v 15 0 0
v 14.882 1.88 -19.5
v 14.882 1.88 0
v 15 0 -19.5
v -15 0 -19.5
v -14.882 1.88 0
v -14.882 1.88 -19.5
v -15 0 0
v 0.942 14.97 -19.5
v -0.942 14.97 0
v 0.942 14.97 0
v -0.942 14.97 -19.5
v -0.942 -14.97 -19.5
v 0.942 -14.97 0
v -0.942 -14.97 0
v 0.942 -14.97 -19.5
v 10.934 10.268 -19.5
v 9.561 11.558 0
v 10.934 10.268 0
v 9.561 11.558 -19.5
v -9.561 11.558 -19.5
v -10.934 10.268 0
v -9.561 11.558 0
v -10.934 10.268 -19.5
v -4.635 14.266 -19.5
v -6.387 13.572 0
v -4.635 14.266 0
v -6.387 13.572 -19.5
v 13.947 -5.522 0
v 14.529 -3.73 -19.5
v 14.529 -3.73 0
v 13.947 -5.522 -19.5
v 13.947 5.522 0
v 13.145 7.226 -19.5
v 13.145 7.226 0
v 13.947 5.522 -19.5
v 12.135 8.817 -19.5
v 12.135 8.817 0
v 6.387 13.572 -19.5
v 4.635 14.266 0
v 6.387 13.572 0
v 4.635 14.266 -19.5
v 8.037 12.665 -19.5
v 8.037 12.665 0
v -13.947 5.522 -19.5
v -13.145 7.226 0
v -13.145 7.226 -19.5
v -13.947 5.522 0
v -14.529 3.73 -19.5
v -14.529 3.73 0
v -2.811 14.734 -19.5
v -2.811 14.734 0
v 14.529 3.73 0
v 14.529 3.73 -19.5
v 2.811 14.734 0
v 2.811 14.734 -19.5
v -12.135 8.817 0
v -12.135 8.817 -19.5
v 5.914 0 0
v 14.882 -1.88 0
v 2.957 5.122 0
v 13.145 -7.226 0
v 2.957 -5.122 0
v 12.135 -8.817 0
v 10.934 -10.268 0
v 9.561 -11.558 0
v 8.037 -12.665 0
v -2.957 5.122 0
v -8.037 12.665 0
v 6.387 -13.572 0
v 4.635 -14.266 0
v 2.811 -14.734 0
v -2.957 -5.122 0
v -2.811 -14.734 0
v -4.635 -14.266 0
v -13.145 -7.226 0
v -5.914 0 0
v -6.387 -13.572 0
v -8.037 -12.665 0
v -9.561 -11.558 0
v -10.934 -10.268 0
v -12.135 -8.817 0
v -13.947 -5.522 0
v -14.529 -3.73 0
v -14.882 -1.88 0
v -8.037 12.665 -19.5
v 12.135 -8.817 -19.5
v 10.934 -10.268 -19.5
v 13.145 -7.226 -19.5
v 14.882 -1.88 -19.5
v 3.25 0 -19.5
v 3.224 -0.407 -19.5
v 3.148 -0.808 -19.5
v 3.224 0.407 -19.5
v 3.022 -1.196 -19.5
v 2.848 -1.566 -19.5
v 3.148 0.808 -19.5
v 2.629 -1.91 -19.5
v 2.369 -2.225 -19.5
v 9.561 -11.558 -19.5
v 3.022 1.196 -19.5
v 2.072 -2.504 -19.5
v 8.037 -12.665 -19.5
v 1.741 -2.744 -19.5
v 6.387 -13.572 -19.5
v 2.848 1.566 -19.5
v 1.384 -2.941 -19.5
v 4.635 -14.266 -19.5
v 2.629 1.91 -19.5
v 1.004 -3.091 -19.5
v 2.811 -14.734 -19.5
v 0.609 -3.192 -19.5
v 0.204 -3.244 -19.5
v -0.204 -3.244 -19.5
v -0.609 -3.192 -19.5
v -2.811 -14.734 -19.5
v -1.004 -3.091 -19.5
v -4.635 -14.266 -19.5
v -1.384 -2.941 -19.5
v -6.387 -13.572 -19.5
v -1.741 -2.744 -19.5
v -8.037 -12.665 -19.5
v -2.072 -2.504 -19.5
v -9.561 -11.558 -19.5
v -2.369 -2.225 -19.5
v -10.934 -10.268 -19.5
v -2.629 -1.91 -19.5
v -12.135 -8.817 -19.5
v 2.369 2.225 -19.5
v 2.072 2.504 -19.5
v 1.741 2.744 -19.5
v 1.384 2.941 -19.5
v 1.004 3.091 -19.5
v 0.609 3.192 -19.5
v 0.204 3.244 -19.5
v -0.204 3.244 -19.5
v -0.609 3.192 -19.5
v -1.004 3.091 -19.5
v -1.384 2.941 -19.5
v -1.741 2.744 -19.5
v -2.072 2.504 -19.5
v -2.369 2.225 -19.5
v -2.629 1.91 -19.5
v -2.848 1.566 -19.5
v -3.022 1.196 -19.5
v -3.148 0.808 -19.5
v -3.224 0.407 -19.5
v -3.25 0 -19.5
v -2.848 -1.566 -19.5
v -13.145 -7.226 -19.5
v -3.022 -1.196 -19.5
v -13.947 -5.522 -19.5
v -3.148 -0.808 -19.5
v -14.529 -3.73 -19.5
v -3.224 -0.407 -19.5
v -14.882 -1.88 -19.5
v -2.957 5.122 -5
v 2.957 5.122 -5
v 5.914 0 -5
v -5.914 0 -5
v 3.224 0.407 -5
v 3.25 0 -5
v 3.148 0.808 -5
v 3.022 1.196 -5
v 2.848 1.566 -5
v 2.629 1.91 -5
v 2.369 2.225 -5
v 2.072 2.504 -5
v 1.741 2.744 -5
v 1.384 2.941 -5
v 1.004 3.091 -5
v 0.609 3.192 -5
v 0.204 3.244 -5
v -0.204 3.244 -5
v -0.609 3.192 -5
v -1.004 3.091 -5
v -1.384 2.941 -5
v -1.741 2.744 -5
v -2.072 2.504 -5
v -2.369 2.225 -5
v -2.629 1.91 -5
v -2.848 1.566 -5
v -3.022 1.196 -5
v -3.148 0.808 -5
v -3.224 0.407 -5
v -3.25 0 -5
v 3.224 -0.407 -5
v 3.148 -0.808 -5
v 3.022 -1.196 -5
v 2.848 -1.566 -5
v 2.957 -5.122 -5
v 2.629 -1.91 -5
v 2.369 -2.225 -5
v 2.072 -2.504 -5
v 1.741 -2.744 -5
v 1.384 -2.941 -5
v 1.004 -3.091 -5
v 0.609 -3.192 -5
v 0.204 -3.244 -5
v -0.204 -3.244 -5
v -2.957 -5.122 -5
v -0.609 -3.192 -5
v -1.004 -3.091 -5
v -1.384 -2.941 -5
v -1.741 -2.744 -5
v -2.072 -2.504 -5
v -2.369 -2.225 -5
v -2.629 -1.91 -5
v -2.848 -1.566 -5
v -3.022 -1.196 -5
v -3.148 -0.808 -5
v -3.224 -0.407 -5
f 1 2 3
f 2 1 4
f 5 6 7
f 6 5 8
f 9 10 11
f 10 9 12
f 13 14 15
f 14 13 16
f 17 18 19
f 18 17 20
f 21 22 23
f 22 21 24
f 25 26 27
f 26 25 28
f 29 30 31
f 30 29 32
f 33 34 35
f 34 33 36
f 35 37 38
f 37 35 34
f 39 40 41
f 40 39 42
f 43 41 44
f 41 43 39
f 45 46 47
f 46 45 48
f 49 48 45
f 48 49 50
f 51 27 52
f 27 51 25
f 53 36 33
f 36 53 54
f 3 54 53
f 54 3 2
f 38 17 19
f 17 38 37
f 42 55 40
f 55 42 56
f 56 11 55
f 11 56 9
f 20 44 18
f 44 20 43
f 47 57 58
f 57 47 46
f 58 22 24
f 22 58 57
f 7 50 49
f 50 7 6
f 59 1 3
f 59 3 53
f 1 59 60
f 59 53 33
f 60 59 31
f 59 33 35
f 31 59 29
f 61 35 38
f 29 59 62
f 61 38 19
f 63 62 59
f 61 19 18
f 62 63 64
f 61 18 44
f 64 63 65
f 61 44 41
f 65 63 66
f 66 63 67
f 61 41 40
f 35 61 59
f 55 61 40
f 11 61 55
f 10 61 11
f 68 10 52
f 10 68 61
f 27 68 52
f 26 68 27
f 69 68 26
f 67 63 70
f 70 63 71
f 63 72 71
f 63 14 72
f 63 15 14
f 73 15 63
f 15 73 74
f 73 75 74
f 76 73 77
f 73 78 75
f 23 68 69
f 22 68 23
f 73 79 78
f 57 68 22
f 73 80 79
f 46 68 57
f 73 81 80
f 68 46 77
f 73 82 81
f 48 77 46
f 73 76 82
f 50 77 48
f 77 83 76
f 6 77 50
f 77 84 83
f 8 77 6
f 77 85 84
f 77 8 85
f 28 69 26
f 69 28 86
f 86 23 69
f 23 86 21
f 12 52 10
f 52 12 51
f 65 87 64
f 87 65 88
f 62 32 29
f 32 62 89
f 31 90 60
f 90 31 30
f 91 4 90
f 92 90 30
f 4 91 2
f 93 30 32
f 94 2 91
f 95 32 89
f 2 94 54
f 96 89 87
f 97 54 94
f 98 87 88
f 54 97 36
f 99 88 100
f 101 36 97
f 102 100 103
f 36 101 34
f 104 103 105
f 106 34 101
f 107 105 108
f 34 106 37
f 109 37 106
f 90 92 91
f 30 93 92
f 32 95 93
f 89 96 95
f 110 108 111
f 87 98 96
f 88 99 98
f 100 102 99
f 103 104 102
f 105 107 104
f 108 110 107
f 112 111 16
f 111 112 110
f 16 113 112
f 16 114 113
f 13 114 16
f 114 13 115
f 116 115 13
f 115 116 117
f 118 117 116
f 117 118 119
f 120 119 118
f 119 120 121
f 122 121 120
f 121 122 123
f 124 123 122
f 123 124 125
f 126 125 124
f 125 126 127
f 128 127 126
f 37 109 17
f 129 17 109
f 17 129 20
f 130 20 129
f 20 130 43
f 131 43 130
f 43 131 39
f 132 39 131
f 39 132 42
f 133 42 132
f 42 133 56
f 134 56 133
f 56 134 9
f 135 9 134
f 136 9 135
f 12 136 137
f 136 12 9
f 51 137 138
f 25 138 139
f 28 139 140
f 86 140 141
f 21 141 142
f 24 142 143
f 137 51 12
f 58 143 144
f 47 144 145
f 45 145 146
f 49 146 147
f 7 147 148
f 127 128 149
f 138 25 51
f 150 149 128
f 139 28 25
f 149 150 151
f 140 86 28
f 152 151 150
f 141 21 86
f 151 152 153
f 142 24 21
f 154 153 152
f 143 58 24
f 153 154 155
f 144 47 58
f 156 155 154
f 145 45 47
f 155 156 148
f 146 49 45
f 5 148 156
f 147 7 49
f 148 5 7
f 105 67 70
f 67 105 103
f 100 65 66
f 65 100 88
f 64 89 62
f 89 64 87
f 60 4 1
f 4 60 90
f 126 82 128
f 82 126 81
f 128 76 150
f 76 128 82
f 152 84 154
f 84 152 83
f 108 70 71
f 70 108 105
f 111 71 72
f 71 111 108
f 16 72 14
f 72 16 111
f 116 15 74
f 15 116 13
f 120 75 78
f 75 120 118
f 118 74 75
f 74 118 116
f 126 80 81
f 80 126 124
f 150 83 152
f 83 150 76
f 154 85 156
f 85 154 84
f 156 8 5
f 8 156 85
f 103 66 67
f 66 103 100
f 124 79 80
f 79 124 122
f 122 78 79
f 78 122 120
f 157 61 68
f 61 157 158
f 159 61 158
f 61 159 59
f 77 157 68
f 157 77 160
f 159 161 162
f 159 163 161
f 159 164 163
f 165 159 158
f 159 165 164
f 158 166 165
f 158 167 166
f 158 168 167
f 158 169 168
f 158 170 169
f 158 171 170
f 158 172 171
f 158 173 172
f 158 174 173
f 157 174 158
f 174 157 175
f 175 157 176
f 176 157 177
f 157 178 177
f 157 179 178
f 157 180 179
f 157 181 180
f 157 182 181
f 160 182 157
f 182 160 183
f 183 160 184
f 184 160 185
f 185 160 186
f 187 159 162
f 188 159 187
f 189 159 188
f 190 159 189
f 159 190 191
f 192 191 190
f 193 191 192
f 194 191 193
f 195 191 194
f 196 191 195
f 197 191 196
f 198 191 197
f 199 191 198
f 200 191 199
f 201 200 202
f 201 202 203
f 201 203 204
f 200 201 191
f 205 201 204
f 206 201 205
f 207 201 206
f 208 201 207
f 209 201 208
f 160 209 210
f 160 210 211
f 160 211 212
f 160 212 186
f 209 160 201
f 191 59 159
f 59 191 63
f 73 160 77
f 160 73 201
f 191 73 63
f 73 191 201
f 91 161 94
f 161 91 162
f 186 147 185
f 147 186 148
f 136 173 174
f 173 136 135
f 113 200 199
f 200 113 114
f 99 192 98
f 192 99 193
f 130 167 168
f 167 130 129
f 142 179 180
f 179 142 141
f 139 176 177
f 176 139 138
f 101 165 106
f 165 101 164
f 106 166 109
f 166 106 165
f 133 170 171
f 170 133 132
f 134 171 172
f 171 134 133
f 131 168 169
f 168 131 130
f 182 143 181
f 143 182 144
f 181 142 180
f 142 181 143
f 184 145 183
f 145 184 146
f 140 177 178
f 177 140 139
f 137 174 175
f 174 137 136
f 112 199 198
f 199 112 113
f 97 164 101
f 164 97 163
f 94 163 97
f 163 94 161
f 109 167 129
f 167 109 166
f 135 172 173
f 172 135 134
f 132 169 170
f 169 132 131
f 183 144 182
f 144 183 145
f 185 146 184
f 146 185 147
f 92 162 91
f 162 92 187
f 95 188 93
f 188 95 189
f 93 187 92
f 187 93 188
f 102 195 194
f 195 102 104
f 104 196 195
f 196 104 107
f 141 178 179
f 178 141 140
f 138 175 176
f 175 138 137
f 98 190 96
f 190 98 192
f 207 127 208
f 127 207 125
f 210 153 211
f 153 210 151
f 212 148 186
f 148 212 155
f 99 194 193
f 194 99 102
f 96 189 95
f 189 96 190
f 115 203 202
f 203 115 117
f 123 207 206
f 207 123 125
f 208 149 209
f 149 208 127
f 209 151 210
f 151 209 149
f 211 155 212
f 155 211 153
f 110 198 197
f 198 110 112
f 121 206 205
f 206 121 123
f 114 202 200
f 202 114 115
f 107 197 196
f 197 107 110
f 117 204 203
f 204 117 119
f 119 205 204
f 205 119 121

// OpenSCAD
$fn = 50;

difference() {
	union() {
		translate(v = [0, 0, -19.5]) {
			cylinder(h = 19.5, r = 15.0);
		}
		#translate(v = [0, 0, -21.0]) {
			cylinder(h = 21, r = 2.875);
		}
	}
	union() {
		translate(v = [0, 0, 0]) {
			rotate(a = [0, 0, 0]) {
				difference() {
					union() {
						translate(v = [0, 0, -5]) {
							linear_extrude(height = 5) {
								polygon(points = [[5.914249999999999, 0.0], [2.957125, 5.1218907443321156], [-2.9571249999999982, 5.1218907443321156], [-5.914249999999999, 7.242867331857232e-16], [-2.9571250000000022, -5.121890744332115], [2.9571249999999956, -5.121890744332118]]);
							}
						}
					}
					union();
				}
			}
		}
		#translate(v = [0, 0, -100.0]) {
			cylinder(h = 200, r = 3.25);
		}
	}
}
